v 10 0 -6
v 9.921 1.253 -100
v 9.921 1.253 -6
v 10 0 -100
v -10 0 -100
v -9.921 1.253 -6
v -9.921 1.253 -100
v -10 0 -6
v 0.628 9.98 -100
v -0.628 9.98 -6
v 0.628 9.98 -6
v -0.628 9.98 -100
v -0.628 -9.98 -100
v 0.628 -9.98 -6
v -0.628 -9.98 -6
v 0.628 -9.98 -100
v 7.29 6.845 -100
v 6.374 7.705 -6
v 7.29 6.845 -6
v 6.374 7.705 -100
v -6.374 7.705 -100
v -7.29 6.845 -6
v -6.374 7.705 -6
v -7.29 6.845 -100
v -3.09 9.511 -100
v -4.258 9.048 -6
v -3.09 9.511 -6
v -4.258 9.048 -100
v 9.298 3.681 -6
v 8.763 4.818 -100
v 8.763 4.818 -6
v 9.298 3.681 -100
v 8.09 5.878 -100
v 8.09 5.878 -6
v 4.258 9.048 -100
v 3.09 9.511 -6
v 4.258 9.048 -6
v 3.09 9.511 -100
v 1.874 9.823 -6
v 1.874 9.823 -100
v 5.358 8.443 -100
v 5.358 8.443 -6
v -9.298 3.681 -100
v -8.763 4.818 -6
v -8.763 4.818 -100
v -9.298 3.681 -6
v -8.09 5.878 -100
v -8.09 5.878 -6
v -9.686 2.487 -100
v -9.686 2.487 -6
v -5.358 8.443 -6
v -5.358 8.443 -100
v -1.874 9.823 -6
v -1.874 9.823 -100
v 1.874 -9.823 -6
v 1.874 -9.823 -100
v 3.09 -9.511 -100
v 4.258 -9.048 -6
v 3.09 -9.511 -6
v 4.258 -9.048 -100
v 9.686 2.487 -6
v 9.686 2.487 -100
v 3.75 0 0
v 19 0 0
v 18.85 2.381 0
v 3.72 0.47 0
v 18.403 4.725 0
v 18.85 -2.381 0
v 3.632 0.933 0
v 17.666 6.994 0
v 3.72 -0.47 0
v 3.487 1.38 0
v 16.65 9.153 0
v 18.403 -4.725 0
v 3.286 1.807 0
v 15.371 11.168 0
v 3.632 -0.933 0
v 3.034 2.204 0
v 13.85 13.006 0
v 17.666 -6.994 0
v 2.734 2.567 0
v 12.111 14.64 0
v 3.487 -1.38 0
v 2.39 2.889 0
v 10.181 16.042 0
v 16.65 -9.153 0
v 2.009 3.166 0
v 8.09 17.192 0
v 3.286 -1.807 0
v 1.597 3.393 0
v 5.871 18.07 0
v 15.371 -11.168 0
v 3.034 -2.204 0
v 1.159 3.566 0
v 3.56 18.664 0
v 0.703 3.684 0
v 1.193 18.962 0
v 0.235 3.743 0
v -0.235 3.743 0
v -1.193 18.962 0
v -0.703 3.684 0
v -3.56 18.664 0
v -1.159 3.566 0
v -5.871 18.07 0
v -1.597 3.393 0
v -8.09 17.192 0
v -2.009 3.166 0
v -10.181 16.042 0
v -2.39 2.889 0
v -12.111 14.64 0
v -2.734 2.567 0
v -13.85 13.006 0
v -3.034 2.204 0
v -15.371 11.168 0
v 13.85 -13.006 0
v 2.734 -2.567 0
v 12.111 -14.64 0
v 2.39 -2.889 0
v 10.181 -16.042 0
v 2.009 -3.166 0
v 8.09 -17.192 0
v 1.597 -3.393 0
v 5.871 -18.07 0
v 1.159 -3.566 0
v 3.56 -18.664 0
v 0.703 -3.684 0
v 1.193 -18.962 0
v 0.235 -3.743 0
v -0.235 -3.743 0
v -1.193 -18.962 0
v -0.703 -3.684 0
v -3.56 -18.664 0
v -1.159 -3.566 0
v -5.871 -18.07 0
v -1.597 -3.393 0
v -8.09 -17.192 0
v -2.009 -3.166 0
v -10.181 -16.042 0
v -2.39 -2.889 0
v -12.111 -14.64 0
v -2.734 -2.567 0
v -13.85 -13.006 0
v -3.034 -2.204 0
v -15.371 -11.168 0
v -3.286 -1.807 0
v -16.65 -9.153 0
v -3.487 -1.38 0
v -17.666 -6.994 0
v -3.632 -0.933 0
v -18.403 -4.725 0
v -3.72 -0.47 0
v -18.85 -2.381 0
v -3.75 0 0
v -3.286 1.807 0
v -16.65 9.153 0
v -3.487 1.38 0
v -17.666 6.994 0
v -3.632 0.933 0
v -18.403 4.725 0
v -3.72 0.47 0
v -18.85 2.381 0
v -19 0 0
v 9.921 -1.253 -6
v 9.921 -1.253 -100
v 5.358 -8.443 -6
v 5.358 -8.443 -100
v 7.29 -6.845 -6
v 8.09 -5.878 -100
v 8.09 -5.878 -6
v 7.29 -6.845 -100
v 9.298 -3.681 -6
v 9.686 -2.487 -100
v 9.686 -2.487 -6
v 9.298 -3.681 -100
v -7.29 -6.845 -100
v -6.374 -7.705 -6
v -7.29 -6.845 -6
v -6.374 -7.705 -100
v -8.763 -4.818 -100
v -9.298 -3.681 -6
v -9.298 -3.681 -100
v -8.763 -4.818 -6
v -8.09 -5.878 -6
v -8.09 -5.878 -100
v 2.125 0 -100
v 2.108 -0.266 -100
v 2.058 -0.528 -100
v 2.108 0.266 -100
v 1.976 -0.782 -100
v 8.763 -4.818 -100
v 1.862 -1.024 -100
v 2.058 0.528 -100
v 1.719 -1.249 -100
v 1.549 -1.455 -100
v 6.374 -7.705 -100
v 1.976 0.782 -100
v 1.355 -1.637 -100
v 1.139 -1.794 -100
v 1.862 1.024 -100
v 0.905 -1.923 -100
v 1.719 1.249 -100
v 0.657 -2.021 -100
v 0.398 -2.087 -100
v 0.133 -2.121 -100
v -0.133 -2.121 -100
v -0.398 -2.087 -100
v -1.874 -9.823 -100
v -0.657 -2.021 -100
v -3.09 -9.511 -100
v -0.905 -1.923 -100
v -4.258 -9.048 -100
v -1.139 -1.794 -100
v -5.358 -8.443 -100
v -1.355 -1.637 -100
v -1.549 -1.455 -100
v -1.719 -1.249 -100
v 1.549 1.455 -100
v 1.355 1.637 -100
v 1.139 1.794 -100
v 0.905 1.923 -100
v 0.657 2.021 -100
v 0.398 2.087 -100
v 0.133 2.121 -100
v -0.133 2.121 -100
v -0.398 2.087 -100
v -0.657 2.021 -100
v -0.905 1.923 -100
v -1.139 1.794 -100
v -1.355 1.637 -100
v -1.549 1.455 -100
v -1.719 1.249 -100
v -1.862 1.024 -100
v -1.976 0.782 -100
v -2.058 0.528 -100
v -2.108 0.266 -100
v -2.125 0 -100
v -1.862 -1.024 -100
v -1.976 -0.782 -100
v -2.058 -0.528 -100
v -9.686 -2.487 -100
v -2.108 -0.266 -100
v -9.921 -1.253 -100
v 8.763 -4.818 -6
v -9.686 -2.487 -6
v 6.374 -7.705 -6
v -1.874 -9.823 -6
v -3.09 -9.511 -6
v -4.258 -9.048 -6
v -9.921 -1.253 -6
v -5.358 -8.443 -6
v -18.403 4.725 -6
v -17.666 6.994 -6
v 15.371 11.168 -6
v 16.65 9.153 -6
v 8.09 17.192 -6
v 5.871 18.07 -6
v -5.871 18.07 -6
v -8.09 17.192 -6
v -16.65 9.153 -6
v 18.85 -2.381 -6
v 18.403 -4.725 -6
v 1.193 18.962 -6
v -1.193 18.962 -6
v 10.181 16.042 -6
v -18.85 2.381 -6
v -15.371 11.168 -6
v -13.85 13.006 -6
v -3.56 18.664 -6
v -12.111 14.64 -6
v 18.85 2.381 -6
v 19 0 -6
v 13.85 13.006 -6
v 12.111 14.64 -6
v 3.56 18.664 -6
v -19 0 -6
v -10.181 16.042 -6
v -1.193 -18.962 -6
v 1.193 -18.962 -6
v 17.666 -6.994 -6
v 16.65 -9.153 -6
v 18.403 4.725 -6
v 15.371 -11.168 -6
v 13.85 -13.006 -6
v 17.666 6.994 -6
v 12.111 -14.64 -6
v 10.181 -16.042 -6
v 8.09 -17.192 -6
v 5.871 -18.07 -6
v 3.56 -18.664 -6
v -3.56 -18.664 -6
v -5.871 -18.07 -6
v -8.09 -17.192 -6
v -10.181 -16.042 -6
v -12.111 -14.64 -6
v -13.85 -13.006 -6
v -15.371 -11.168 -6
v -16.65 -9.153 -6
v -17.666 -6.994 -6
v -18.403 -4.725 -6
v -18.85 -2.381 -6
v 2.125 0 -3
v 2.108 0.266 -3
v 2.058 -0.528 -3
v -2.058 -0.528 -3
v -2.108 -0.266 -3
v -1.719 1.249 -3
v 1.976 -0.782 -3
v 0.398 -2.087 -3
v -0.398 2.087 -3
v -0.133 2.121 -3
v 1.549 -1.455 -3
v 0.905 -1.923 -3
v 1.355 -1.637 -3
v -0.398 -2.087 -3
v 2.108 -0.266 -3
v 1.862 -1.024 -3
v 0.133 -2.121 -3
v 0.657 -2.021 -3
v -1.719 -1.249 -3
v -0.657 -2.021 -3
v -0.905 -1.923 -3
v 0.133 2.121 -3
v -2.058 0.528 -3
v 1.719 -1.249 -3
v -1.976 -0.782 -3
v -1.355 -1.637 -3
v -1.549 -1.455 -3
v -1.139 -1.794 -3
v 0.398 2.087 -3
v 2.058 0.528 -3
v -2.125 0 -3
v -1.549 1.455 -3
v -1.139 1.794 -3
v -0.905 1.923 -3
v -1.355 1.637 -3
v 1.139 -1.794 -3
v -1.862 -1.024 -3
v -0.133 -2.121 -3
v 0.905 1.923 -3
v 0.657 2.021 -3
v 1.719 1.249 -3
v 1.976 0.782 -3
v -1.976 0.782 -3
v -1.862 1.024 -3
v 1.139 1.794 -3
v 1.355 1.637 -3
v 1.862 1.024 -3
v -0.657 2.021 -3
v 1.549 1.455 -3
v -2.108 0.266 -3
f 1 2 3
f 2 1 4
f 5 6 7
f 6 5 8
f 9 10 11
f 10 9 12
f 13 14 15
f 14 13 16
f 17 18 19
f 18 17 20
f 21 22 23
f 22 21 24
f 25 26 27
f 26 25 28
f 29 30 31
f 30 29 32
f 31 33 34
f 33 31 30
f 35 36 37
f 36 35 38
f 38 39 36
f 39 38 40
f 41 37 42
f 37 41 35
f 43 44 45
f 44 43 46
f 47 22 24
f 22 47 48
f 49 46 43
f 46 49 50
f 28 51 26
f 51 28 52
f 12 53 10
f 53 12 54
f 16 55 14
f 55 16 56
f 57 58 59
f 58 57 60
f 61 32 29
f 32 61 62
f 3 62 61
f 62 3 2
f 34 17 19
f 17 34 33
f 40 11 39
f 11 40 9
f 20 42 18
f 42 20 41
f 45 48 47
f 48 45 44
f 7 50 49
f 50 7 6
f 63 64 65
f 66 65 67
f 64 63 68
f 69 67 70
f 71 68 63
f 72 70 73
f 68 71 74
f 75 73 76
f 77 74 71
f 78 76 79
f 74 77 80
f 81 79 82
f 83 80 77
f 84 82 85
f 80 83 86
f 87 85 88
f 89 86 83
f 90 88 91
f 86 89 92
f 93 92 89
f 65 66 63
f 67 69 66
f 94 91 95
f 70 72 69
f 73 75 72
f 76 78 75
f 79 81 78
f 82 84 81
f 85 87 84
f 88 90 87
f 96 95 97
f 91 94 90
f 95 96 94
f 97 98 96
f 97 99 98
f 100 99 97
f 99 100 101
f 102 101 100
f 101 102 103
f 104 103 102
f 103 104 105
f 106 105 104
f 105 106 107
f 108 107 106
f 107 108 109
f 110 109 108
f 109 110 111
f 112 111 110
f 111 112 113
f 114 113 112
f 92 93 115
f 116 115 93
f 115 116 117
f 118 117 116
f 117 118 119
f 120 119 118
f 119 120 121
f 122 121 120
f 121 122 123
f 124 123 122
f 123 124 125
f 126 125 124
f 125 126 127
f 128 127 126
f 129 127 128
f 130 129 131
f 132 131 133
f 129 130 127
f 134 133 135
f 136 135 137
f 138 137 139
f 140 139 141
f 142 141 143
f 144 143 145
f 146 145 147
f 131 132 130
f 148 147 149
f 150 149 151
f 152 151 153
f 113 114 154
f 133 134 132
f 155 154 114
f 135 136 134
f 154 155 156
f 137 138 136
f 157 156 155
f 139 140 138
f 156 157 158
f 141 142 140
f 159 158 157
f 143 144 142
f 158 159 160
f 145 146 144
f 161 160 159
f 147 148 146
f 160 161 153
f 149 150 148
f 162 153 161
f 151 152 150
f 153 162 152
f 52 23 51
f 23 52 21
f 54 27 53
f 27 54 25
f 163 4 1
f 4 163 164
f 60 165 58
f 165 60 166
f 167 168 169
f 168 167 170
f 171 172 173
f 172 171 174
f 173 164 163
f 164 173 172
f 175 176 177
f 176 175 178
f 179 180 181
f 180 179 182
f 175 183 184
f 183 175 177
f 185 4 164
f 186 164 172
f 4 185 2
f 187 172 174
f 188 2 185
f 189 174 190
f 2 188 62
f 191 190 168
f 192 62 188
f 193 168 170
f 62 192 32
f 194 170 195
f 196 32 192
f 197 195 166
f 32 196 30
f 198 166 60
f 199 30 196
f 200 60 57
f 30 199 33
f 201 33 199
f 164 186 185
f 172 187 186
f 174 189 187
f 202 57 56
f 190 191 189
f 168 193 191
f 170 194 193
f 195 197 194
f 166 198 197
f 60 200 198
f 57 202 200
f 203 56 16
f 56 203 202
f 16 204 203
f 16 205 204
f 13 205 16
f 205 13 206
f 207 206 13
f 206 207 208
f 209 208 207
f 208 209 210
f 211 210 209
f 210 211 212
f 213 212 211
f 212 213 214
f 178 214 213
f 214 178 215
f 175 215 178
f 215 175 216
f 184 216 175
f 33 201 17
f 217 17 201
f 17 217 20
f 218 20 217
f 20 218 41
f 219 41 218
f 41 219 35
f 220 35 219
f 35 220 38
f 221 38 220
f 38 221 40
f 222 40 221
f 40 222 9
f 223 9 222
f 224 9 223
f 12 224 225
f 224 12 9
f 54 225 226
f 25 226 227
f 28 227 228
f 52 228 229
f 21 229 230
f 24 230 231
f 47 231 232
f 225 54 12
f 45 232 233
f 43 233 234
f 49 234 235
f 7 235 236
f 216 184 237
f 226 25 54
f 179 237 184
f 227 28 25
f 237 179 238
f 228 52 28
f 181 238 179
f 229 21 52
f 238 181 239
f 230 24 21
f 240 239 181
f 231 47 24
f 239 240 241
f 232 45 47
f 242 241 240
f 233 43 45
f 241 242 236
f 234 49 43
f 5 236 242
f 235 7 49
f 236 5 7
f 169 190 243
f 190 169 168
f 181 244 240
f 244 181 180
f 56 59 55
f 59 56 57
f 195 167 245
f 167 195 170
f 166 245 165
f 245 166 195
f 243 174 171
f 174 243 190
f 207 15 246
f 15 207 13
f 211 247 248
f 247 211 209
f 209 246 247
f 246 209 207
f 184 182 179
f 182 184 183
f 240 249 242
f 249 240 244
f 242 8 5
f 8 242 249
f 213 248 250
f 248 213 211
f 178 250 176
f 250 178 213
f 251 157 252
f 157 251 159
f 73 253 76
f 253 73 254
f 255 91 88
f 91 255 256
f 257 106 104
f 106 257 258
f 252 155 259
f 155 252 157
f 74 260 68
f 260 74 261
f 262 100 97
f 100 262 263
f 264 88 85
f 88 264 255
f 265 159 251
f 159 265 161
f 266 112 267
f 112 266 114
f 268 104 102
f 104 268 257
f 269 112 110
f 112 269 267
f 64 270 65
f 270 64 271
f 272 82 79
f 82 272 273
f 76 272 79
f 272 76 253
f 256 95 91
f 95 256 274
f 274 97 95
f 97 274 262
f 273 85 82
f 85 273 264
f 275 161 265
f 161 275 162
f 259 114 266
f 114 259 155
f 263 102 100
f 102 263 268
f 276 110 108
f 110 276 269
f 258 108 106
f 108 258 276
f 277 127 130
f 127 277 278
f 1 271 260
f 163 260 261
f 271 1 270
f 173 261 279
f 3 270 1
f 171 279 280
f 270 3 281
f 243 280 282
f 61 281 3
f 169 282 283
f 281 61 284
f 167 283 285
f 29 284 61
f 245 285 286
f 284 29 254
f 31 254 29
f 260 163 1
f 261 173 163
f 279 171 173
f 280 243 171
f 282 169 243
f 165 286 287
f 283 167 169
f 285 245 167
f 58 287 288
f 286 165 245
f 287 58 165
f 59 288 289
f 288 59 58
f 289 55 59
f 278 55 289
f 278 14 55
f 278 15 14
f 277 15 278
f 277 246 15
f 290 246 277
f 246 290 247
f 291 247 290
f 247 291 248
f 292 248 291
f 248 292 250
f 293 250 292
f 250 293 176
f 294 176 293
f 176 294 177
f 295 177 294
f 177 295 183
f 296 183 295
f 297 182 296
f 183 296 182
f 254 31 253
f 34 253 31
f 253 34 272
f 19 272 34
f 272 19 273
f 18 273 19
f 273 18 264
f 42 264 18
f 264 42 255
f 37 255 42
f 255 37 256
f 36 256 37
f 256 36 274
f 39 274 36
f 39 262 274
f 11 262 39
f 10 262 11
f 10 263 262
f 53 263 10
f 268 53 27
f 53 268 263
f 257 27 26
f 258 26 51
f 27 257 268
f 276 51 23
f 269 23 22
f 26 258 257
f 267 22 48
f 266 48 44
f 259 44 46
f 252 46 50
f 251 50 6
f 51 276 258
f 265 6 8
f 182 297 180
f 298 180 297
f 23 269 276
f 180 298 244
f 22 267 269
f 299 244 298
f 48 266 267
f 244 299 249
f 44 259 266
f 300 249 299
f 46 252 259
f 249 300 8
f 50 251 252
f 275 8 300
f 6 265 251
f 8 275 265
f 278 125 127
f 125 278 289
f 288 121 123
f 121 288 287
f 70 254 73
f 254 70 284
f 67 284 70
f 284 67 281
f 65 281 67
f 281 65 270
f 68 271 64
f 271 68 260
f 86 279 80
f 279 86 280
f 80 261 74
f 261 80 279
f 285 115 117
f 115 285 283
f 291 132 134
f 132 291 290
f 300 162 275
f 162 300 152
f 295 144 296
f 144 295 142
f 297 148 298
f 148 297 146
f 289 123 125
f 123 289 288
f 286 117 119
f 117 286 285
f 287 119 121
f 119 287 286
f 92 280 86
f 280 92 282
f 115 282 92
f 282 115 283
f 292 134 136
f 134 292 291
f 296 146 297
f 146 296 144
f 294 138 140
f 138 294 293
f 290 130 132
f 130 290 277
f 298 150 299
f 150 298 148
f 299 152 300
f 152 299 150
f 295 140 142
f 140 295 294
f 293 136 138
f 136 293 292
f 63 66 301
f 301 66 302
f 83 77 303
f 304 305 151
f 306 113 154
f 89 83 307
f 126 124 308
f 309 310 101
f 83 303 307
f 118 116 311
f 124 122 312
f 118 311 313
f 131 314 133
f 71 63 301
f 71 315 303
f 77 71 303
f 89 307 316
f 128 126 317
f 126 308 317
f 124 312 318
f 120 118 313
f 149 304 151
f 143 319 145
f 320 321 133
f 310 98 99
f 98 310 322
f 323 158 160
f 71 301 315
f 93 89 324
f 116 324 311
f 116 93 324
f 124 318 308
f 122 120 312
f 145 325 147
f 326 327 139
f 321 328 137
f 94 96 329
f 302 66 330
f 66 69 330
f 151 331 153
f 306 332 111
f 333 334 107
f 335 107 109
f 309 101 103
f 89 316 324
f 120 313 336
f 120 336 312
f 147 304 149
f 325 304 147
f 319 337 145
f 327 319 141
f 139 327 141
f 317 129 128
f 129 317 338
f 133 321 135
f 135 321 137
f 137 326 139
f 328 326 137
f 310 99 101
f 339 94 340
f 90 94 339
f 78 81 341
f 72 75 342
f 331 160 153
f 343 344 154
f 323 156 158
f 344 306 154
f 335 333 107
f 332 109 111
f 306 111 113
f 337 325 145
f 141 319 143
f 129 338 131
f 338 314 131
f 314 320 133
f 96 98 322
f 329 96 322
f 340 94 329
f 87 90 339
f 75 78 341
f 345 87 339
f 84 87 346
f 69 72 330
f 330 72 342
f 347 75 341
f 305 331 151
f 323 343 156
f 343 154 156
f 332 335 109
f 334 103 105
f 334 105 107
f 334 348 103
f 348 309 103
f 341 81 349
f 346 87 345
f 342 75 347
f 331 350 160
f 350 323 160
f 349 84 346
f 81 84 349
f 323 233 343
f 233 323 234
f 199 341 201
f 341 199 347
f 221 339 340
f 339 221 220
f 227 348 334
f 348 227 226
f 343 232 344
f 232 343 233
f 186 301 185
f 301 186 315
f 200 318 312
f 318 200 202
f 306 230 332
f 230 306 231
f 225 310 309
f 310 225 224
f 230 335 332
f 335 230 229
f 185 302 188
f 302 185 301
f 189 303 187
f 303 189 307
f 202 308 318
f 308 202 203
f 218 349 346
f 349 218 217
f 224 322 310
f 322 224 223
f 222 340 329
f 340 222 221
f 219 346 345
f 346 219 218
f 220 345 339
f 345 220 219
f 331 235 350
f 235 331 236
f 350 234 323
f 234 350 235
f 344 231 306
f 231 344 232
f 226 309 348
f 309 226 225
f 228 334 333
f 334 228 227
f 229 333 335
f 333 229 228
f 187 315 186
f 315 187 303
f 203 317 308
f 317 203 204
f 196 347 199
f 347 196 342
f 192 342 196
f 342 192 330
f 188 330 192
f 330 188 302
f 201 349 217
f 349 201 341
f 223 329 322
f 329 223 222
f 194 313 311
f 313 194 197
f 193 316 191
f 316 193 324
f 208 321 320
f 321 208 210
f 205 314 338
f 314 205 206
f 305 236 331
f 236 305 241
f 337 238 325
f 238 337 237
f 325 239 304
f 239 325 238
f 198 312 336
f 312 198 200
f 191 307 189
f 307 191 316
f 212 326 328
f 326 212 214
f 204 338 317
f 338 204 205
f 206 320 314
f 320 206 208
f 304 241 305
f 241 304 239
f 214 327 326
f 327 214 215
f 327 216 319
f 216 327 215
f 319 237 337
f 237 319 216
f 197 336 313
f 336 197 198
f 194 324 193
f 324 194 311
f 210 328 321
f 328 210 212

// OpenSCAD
$fn = 50;


difference() {
	union() {
		translate(v = [0, 0, -100.0000000000]) {
			cylinder(h = 100, r = 10.0000000000);
		}
		translate(v = [0, 0, -6.0000000000]) {
			cylinder(h = 6, r = 19.0000000000);
		}
	}
	union() {
		translate(v = [0, 0, 0]) {
			rotate(a = [0, 0, 0]) {
				difference() {
					union() {
						#translate(v = [0, 0, -100.0000000000]) {
							cylinder(h = 100, r = 2.0000000000);
						}
						#translate(v = [0, 0, -3]) {
							cylinder(h = 3, r1 = 2.1250000000, r2 = 3.7500000000);
						}
						#translate(v = [0, 0, -100.0000000000]) {
							cylinder(h = 100, r = 2.1250000000);
						}
						#translate(v = [0, 0, -100.0000000000]) {
							cylinder(h = 100, r = 2.0000000000);
						}
					}
					union();
				}
			}
		}
	}
}
